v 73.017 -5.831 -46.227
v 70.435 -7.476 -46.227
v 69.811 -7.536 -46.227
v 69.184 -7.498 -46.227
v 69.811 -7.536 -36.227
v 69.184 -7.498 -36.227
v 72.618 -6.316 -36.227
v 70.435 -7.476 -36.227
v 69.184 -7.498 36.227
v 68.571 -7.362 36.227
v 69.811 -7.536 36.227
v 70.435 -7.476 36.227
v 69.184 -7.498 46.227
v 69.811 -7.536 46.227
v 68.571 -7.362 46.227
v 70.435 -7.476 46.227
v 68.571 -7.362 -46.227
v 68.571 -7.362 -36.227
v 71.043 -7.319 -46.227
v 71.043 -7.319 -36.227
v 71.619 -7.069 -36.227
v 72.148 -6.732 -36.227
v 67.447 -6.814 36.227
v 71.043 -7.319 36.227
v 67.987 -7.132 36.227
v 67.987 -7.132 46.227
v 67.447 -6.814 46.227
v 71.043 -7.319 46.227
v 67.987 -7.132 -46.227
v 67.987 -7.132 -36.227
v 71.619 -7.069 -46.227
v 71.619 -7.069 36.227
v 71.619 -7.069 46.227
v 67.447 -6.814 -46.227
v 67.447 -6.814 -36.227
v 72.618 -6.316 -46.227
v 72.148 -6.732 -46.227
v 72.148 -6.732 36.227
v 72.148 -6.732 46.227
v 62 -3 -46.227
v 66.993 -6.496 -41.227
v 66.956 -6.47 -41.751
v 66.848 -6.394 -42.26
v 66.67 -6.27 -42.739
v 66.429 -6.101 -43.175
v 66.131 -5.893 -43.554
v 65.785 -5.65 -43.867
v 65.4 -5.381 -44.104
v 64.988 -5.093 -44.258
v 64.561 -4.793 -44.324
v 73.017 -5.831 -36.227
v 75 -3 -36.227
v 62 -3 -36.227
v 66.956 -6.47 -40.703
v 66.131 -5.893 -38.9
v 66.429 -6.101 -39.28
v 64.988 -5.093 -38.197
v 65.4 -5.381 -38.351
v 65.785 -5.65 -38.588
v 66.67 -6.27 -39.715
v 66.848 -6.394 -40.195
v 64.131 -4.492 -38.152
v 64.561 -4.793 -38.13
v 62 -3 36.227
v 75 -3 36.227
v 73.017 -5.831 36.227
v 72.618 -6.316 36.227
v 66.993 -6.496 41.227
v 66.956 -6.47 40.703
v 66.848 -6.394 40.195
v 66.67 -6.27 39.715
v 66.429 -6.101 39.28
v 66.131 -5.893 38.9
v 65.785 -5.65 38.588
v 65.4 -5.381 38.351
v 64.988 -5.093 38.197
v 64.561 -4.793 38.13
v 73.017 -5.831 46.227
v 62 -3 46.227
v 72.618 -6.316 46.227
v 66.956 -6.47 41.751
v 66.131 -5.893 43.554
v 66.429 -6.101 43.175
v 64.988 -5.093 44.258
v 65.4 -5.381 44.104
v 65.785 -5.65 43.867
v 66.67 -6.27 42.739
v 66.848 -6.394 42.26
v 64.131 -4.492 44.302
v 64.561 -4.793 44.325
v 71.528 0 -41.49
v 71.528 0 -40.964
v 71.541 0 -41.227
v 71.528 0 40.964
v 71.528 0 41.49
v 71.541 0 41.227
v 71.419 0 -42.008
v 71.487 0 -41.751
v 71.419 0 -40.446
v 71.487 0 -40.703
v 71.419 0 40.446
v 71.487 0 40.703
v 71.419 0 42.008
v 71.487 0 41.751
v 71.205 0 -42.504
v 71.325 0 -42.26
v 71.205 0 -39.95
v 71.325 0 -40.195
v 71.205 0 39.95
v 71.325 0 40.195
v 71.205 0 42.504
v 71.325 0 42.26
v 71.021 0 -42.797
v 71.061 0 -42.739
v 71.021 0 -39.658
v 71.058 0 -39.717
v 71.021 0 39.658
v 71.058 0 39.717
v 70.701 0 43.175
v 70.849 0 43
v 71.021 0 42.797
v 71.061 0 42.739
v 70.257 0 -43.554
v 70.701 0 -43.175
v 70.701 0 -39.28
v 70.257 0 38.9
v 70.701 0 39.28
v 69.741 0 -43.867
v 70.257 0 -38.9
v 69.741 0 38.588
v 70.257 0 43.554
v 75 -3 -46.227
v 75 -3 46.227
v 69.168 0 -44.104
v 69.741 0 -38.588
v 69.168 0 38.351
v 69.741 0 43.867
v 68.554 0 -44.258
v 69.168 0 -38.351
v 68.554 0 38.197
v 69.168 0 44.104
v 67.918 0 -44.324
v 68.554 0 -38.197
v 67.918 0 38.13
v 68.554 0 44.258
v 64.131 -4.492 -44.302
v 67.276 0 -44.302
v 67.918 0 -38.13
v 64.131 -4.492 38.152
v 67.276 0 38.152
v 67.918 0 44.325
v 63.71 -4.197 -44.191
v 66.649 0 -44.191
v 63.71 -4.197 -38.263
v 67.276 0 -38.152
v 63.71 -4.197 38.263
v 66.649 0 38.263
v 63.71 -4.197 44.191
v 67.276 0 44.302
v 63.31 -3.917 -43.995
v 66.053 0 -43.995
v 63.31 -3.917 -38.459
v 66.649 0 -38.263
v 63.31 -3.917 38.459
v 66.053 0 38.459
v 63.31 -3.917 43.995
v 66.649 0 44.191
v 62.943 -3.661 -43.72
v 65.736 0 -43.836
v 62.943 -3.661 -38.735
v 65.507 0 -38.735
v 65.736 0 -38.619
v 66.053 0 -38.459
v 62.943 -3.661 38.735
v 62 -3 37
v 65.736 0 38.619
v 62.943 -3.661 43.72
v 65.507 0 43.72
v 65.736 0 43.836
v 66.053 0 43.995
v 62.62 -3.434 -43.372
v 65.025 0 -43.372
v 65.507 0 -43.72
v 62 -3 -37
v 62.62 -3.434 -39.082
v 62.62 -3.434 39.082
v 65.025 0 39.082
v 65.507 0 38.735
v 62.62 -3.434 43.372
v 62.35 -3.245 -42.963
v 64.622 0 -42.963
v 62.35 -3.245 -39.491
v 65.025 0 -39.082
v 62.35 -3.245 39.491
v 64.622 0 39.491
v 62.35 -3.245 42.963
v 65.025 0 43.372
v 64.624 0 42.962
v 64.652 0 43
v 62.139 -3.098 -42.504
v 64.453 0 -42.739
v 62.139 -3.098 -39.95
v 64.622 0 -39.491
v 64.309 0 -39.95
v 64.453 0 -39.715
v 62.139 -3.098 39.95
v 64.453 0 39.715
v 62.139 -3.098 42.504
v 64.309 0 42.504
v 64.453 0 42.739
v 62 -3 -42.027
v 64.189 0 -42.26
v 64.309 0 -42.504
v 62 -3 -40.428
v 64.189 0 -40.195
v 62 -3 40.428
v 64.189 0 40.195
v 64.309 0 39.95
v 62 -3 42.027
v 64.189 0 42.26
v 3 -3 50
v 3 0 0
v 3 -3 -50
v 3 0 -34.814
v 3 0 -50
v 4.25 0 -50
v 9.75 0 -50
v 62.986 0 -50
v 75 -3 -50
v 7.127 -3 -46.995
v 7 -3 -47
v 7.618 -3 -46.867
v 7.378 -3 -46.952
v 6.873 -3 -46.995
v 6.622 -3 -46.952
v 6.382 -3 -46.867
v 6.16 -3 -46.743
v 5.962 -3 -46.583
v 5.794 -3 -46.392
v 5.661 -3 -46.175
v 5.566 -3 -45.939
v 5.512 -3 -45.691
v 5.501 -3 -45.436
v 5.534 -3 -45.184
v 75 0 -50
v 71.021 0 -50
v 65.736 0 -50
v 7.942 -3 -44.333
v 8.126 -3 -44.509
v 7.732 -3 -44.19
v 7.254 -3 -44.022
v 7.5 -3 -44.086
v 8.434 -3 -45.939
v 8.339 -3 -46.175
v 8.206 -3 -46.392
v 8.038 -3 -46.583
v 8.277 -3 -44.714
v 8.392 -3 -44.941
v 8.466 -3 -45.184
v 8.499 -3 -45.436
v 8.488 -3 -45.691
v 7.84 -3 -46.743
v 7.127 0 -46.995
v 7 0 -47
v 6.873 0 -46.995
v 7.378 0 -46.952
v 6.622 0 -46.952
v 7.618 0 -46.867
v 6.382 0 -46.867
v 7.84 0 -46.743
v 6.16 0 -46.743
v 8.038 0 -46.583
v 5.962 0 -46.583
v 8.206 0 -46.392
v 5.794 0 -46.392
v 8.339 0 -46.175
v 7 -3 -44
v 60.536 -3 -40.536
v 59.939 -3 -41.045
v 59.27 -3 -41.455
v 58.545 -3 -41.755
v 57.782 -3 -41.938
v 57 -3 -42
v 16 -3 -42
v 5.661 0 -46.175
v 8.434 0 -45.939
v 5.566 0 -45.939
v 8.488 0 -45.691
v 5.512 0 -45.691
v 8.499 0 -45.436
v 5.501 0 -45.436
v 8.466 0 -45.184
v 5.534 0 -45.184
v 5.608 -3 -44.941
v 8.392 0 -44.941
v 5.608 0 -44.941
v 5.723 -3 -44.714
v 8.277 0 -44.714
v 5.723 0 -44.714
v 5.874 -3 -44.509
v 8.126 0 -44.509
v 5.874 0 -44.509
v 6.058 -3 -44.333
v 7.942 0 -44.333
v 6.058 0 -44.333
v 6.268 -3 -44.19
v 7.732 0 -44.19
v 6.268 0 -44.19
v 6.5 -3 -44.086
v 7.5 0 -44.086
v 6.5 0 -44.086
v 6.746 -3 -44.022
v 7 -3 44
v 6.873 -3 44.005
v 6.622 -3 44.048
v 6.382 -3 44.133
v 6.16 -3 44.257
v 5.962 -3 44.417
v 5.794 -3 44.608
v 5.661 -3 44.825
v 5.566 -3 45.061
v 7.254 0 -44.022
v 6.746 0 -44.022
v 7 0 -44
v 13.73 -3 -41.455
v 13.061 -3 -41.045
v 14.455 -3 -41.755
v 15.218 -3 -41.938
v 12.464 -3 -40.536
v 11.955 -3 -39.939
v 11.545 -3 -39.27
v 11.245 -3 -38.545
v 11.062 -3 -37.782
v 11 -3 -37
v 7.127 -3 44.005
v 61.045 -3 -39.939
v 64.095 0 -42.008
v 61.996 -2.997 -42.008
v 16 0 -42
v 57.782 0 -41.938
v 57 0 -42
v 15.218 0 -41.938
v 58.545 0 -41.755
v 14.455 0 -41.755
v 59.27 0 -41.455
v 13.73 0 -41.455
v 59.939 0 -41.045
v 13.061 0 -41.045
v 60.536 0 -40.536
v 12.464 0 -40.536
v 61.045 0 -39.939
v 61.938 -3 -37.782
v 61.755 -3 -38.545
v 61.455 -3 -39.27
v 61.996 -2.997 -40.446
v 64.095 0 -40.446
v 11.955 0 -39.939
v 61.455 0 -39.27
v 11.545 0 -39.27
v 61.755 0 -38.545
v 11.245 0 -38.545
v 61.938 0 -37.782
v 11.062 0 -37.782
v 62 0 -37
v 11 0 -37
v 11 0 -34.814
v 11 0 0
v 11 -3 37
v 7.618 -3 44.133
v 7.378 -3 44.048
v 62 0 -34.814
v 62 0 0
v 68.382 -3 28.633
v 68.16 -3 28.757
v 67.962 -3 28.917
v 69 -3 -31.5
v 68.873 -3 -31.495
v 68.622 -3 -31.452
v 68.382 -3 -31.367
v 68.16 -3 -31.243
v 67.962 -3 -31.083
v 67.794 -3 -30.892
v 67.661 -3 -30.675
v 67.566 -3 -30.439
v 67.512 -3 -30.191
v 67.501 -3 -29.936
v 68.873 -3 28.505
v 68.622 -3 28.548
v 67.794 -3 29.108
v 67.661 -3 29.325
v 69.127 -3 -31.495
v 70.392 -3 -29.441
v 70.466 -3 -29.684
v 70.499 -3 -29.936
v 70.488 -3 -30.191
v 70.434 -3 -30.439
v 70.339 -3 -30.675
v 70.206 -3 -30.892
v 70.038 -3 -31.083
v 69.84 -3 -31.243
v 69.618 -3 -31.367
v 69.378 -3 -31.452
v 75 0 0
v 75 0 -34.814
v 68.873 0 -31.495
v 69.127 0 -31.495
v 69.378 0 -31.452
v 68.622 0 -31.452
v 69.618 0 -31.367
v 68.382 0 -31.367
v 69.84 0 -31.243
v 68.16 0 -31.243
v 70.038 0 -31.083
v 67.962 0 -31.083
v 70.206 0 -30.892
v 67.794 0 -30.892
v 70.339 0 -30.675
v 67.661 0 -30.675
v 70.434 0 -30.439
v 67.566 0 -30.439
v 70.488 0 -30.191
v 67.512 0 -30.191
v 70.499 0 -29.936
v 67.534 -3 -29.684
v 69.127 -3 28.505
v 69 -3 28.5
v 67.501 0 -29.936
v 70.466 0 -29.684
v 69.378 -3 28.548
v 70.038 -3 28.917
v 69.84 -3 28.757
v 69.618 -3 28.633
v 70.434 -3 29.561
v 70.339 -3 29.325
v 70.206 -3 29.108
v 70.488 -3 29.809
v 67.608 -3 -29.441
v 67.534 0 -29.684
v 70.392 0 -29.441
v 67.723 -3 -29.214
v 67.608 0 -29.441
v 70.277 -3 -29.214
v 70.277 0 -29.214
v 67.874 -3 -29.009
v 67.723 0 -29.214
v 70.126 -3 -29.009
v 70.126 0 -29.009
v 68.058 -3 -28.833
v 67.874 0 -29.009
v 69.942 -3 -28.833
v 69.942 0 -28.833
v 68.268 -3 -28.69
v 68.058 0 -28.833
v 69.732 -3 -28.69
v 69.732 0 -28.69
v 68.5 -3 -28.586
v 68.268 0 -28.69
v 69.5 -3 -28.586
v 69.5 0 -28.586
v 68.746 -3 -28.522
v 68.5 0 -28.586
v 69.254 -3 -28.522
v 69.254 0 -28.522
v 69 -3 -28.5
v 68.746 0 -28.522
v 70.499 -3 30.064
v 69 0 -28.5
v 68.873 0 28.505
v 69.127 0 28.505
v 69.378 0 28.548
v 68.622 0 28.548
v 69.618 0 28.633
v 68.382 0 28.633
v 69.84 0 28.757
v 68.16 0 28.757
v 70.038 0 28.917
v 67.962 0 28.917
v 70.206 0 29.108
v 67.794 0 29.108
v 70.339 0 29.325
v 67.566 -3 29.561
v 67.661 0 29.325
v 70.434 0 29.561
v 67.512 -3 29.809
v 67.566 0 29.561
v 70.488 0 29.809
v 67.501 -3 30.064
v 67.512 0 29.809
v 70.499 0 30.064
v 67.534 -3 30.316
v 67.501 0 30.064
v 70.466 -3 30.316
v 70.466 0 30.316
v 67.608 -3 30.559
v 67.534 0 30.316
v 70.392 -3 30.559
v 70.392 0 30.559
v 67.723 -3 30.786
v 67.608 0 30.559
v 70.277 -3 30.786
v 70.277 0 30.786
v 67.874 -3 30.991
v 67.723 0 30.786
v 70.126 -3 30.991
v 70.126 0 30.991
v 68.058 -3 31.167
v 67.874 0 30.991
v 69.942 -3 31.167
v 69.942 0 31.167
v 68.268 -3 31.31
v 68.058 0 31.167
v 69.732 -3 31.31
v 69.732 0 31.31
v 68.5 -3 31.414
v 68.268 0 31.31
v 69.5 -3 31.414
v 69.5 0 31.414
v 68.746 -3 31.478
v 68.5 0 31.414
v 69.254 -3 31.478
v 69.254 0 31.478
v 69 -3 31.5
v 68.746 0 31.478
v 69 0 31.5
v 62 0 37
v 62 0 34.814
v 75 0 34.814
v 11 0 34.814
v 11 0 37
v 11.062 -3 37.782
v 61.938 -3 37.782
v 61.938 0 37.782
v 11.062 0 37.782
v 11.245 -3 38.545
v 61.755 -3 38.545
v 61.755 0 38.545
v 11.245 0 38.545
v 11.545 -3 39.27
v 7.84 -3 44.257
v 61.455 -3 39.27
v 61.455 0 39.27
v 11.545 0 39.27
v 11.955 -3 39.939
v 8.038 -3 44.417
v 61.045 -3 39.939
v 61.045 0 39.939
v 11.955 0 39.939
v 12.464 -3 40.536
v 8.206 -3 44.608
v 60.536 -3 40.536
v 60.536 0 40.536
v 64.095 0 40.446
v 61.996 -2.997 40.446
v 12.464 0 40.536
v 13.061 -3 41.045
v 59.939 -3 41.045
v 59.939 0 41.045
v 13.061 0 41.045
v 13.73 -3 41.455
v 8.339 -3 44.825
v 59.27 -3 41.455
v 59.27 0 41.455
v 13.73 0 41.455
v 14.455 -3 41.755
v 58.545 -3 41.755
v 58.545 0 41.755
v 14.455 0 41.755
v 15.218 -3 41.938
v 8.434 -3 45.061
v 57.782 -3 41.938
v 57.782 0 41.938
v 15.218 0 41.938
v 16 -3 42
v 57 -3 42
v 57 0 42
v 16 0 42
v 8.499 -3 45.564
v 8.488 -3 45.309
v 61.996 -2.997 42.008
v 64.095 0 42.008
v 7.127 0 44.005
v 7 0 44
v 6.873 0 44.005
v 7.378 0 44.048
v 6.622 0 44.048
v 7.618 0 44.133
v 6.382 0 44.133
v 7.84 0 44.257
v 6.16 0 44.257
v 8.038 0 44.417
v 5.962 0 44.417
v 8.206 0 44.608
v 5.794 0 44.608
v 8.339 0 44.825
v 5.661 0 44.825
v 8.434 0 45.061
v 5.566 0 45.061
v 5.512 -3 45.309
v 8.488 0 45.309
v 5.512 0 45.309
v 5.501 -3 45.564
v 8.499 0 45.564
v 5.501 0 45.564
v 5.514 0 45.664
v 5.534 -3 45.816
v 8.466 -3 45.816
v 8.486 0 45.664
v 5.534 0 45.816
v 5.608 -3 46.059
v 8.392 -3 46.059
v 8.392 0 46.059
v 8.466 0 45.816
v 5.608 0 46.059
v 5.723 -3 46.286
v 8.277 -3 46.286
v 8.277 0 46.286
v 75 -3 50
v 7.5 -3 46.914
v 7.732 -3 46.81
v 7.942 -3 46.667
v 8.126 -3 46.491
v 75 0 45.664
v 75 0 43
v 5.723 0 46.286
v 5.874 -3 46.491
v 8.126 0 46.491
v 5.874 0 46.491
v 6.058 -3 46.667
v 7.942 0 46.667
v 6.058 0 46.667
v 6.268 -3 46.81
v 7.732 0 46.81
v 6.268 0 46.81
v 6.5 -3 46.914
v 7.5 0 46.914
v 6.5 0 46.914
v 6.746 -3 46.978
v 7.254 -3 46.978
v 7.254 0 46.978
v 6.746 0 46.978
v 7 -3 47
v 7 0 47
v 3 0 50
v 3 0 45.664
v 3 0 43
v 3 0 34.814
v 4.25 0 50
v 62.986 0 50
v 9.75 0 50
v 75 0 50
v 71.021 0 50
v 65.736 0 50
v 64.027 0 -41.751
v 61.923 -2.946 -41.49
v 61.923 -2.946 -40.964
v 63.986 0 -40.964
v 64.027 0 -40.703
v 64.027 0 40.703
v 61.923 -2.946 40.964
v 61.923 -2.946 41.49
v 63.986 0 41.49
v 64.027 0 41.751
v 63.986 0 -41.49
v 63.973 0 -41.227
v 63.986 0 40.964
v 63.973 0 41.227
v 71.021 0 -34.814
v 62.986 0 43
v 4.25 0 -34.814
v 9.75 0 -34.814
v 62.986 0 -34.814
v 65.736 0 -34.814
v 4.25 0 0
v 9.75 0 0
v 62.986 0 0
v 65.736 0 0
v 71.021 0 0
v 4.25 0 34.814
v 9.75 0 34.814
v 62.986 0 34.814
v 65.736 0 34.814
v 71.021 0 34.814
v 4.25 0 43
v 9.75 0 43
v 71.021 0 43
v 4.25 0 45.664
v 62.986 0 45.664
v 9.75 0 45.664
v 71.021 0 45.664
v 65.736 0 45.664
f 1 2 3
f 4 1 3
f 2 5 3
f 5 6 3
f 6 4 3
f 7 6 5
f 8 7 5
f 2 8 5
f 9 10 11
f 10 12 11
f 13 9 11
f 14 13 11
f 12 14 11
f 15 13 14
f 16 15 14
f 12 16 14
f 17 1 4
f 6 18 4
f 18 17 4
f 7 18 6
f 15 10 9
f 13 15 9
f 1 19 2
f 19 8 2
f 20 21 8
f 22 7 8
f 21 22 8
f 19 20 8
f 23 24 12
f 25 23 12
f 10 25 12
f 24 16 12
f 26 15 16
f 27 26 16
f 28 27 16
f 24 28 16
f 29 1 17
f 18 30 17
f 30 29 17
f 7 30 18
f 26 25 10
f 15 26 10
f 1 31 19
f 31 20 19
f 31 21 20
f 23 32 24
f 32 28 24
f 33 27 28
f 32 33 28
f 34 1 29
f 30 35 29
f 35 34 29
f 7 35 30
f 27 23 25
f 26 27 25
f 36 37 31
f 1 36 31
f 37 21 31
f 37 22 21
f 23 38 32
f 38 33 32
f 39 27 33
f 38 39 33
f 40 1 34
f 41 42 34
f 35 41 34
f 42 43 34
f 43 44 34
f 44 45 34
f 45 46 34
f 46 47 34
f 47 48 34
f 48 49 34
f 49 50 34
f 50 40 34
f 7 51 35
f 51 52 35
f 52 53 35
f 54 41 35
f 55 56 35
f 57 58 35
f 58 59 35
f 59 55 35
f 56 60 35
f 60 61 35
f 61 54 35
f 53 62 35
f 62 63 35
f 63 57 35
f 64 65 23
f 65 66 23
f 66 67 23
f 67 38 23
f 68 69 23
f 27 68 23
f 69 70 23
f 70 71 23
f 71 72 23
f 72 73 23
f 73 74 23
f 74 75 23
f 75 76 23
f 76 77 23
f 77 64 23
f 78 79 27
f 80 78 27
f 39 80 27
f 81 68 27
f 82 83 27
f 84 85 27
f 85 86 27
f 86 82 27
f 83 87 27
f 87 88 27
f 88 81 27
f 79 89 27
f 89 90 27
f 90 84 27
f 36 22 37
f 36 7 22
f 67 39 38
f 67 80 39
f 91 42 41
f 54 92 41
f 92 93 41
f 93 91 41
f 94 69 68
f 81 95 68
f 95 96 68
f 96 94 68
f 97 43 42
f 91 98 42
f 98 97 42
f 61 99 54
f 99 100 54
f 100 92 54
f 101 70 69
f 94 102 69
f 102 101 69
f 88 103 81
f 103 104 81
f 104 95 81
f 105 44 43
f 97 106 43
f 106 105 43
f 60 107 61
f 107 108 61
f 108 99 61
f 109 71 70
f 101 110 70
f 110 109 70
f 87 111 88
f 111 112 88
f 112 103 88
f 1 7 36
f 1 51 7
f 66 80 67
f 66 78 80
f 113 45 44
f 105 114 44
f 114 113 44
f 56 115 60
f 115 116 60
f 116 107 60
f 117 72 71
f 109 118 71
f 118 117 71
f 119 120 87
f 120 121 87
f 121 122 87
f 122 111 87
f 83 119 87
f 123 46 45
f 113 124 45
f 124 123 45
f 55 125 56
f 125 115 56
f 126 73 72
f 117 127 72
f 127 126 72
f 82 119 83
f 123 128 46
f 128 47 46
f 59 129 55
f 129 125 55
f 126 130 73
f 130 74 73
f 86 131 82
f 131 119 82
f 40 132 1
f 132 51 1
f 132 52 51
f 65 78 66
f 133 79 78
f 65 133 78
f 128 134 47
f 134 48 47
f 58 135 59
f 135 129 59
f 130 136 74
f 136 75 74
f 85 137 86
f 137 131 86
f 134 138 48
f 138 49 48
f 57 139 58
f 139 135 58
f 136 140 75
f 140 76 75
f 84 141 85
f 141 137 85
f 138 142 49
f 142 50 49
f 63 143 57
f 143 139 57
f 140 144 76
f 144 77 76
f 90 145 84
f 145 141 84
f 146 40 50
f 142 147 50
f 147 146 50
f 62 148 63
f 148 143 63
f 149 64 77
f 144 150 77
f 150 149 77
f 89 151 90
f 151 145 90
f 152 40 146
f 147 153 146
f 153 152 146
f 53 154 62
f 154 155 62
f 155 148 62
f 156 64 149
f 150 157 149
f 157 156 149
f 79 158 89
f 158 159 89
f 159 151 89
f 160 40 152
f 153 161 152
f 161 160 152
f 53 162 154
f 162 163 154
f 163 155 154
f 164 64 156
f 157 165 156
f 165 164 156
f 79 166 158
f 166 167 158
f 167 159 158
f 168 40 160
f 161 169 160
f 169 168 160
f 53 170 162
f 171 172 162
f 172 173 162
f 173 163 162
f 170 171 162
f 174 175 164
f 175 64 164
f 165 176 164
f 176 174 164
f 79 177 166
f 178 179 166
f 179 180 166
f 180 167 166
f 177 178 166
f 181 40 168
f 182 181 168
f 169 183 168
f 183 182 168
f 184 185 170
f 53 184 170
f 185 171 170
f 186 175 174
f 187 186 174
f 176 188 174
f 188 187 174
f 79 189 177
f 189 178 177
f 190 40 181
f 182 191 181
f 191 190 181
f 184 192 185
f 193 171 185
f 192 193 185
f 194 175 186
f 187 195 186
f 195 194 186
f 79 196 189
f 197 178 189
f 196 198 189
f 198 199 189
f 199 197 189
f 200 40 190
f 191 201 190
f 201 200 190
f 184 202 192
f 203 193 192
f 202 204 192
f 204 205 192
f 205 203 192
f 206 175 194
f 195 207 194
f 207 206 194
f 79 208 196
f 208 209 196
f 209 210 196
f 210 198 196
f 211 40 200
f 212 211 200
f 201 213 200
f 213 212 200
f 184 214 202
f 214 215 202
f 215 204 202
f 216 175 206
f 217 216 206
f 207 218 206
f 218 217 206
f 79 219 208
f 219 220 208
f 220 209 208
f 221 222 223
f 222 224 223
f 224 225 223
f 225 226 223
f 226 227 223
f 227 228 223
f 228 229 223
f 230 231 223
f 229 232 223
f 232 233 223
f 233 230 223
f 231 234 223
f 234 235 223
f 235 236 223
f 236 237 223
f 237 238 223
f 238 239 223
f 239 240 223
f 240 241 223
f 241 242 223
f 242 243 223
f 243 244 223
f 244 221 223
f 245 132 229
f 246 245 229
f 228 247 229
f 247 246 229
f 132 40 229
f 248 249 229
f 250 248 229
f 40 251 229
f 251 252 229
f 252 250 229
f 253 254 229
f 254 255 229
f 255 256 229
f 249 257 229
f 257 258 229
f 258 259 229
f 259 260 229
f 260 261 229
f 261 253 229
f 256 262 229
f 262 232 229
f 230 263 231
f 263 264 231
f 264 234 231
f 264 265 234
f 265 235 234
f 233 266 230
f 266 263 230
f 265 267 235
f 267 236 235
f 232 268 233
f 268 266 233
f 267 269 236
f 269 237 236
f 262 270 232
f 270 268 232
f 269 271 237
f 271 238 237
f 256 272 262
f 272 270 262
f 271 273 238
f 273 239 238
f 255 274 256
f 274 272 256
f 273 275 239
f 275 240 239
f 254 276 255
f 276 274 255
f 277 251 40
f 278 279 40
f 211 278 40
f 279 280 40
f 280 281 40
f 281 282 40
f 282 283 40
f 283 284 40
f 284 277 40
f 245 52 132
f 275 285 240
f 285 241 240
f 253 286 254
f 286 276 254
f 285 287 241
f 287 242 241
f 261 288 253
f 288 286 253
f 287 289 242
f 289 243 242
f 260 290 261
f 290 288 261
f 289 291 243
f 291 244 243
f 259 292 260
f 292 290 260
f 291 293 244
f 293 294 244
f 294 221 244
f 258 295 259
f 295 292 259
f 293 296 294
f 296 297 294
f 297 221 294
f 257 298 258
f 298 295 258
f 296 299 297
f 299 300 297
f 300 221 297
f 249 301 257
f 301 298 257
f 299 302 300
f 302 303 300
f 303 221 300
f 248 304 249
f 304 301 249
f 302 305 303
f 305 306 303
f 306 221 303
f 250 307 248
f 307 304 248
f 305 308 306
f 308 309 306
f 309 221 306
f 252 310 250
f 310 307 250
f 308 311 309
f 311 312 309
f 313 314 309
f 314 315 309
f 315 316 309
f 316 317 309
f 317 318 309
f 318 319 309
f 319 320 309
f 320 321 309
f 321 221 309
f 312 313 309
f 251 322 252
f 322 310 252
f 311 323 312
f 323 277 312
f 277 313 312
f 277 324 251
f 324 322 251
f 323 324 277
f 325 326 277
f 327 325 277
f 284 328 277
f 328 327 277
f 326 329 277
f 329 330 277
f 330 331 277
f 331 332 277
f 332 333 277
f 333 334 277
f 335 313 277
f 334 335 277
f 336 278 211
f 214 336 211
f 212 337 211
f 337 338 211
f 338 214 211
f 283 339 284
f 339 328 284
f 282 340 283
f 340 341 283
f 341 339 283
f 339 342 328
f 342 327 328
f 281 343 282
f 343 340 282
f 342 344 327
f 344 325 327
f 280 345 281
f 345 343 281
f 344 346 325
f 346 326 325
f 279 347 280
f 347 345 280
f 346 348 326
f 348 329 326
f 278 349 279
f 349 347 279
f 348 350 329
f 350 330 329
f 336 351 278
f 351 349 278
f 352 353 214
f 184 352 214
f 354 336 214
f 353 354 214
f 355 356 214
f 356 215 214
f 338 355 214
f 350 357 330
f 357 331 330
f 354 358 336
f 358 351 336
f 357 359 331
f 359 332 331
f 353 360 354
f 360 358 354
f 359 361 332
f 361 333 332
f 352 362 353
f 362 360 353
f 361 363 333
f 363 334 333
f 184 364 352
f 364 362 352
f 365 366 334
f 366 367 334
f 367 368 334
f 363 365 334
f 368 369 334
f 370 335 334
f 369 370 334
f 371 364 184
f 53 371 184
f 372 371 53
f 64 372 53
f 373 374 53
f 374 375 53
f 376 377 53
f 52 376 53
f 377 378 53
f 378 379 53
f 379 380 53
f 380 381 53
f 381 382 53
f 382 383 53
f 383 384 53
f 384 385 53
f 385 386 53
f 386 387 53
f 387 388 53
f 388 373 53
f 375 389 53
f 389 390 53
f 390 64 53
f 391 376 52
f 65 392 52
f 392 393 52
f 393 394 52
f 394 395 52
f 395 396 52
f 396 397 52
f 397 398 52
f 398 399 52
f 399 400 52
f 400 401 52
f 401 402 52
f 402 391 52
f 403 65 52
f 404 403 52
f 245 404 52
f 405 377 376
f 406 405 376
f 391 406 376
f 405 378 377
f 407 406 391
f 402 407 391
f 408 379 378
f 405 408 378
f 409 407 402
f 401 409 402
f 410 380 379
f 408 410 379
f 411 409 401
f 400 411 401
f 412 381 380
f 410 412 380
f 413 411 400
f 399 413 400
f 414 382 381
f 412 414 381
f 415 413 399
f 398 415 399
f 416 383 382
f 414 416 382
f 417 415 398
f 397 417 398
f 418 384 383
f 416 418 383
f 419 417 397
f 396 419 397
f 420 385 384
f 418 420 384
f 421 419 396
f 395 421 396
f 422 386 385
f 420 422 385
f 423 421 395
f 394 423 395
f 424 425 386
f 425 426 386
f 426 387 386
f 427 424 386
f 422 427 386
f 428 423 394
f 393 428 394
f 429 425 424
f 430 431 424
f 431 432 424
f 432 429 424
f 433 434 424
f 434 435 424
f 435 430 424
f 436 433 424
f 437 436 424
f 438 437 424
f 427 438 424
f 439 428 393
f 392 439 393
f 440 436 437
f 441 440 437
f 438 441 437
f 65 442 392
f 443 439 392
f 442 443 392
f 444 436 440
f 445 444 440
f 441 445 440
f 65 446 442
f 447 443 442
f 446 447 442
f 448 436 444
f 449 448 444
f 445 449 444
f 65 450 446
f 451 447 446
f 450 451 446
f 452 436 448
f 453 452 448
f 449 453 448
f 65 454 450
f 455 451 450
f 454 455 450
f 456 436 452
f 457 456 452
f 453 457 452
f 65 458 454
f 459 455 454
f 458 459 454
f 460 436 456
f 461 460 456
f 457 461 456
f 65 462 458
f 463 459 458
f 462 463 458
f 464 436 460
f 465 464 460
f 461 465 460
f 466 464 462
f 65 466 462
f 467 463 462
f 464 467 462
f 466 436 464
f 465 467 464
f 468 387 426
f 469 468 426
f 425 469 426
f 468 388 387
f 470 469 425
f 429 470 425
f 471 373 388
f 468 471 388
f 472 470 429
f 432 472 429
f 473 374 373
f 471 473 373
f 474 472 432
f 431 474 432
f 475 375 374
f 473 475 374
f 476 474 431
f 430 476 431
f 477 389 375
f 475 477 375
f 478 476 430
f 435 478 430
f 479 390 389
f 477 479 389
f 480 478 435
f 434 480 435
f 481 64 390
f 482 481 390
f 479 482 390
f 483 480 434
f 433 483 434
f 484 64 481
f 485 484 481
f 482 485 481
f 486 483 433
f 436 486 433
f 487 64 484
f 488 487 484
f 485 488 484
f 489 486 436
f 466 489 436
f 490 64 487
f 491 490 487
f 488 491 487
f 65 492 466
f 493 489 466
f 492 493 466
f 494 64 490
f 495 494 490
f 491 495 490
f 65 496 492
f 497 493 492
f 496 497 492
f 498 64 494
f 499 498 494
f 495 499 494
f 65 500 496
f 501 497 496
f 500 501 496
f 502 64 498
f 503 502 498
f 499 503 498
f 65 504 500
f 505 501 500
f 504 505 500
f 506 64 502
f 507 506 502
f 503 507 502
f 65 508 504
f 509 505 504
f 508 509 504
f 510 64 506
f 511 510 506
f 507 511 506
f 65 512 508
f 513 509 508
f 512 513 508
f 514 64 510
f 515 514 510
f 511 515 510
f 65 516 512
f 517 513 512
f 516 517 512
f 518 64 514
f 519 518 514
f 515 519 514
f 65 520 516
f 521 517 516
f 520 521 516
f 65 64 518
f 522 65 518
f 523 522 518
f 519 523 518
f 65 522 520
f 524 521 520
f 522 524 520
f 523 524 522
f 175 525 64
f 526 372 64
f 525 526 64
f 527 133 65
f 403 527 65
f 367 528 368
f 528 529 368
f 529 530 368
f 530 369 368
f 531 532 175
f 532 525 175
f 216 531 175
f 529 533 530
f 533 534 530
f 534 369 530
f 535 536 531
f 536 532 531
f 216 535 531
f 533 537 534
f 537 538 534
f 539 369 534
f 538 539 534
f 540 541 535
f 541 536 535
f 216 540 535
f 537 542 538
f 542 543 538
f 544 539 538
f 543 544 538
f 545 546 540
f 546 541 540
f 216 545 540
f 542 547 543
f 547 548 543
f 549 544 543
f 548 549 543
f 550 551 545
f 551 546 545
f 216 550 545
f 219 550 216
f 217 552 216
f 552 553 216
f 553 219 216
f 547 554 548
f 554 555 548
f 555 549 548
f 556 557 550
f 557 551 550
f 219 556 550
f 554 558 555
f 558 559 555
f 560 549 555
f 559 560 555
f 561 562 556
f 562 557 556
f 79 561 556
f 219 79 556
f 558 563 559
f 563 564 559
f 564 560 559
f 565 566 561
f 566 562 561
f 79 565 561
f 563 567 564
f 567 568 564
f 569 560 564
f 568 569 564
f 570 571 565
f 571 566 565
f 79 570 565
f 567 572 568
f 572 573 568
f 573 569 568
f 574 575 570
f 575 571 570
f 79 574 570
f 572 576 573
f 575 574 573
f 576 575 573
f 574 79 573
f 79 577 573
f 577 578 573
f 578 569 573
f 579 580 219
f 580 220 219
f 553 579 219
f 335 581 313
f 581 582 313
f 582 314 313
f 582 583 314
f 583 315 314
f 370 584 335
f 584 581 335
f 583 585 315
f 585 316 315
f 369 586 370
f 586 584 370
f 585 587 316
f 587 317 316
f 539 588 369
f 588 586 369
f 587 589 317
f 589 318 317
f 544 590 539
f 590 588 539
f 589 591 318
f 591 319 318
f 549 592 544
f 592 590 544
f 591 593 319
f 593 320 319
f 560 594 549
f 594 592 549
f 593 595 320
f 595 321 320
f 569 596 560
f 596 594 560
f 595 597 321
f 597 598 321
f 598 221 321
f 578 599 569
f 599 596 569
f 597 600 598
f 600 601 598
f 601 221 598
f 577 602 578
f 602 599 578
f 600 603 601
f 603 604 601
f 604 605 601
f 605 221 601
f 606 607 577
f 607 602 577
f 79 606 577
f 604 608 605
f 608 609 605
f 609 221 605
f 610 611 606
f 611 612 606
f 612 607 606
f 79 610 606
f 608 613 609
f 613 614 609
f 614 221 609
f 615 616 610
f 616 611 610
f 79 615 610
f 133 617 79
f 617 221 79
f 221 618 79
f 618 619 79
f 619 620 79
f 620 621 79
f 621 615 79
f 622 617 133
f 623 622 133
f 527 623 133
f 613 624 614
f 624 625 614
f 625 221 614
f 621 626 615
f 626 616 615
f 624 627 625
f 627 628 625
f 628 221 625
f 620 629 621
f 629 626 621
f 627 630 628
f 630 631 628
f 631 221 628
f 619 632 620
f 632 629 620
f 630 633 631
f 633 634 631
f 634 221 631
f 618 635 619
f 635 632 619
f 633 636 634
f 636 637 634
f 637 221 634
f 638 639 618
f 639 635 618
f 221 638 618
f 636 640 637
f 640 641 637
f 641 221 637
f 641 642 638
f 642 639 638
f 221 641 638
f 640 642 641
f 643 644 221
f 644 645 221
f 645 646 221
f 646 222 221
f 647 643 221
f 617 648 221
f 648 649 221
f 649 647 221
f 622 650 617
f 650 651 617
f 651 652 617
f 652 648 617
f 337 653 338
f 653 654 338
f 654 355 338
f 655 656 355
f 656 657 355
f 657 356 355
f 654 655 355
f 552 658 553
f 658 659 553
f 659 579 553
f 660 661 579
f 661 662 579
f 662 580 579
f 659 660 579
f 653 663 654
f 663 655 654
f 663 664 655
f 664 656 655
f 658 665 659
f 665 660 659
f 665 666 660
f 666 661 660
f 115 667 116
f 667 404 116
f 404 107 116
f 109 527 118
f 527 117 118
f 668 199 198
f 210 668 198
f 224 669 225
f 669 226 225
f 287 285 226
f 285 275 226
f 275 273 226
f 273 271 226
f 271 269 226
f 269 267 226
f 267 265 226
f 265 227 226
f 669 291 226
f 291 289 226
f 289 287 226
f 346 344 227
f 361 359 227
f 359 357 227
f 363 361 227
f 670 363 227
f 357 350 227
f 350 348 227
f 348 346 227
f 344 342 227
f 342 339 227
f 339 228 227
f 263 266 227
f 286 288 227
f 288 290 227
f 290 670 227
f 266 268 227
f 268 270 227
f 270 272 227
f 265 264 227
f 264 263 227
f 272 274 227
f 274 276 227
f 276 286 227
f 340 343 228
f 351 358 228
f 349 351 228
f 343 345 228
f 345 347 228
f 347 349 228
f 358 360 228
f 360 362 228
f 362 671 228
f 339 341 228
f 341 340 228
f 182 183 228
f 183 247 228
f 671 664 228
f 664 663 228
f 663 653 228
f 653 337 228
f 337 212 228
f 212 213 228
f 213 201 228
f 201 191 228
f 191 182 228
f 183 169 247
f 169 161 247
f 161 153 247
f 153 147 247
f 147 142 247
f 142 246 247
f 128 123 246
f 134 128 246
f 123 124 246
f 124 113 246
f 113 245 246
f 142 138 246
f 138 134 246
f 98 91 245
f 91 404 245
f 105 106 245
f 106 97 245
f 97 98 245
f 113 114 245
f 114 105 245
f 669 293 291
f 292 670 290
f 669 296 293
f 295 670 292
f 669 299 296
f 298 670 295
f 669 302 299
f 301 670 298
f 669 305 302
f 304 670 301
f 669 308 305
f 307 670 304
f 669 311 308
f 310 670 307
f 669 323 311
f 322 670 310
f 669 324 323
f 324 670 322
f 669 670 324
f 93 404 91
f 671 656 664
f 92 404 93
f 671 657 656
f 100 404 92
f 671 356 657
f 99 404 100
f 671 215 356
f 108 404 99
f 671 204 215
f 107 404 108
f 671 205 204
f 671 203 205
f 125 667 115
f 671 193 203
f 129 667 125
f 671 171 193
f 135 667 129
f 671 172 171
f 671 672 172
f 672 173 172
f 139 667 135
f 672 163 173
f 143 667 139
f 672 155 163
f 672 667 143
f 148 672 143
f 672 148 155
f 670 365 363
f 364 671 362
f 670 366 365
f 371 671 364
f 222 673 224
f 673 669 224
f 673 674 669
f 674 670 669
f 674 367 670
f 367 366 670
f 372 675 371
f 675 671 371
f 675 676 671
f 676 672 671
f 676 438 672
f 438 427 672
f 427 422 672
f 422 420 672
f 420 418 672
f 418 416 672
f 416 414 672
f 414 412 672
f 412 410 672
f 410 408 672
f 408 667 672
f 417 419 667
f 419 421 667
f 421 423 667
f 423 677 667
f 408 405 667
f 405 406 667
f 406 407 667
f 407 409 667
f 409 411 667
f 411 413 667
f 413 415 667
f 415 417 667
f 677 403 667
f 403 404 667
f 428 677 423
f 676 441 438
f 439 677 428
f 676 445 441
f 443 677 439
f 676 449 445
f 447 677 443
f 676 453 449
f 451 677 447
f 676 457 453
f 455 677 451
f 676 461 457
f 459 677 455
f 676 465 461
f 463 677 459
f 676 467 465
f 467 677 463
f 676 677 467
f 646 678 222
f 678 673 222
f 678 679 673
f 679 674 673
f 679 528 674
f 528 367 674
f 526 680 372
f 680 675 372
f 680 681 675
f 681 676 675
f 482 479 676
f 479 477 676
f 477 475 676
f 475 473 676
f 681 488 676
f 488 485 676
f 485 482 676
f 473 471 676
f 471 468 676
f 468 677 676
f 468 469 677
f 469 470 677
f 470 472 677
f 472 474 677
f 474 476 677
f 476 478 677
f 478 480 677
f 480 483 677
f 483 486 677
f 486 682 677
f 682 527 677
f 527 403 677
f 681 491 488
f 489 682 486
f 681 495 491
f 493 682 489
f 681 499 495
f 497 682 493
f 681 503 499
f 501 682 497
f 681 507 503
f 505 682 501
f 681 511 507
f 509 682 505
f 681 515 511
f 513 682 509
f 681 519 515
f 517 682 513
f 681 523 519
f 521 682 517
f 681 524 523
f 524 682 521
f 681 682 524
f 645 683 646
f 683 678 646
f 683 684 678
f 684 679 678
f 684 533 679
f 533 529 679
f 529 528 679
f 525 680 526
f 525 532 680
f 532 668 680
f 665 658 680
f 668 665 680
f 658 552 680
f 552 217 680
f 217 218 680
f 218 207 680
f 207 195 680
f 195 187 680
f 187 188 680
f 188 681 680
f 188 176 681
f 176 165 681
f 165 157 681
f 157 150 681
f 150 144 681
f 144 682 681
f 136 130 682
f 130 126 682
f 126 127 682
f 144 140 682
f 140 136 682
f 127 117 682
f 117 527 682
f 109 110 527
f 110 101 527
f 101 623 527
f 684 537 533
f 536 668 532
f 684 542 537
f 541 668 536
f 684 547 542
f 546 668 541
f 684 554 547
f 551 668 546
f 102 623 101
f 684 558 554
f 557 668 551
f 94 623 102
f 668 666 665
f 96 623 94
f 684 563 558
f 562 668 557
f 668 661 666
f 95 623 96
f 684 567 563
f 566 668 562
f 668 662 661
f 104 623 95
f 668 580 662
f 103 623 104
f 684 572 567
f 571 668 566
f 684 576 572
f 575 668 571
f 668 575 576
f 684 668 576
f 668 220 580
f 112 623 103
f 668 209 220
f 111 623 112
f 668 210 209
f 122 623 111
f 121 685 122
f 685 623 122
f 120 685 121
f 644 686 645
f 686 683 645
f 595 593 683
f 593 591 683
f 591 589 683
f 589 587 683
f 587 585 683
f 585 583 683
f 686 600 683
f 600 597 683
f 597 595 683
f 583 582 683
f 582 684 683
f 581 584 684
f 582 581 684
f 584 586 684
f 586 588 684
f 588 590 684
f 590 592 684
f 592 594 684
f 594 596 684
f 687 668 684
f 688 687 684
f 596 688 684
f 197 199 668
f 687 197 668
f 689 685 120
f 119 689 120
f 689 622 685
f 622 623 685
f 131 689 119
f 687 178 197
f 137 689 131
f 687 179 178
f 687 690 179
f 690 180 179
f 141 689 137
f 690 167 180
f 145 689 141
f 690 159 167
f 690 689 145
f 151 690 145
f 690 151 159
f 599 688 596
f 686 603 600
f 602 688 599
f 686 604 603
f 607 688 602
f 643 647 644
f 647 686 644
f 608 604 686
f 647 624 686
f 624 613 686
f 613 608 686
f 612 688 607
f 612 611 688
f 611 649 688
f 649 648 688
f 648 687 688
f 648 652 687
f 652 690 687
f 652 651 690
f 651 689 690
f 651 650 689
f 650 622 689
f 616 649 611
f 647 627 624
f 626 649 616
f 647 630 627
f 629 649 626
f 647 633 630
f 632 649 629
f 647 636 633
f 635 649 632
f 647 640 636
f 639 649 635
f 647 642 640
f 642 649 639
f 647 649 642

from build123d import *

# Parameters (mm, degrees)
SKETCH1_W           = 72
SKETCH1_H           = 100
SKETCH1_R           = 1.5
BOSS_EXTRUDE1_DEPTH = 3
SKETCH3_W           = 13
SKETCH3_H           = 10
BOSS_EXTRUDE3_DEPTH = 11
CUT_EXTRUDE1_DEPTH  = 15
SKETCH6_R           = 3.1
CUT_EXTRUDE2_DEPTH  = 10.913949805
FILLET1_R           = 4
SKETCH7_R           = 1.5
CUT_EXTRUDE3_DEPTH  = 8.537088113


with BuildPart() as part:
    # Sketch1 → Boss-Extrude1 (new body)
    with BuildSketch(Plane.XZ):
        with Locations((39, 0)):
            Rectangle(SKETCH1_W, SKETCH1_H)
        with Locations((7, -45.5)):
            Circle(SKETCH1_R, mode=Mode.SUBTRACT)
        with BuildLine():
            Line((62, 37), (62, -37))
            ThreePointArc((62, -37), (60.535533906, -40.535533906), (57, -42))
            Line((57, -42), (16, -42))
            ThreePointArc((16, -42), (12.464466094, -40.535533906), (11, -37))
            Line((11, -37), (11, 37))
            ThreePointArc((11, 37), (12.464466094, 40.535533906), (16, 42))
            Line((16, 42), (57, 42))
            ThreePointArc((57, 42), (60.535533906, 40.535533906), (62, 37))
        make_face(mode=Mode.SUBTRACT)
        with Locations((7, 45.5)):
            Circle(SKETCH1_R, mode=Mode.SUBTRACT)
    extrude(amount=BOSS_EXTRUDE1_DEPTH)

    # Sketch3 → Boss-Extrude3 (add)
    with BuildSketch(Plane.XZ.offset(3)):
        with Locations((68.5, -41.227292579)):
            Rectangle(SKETCH3_W, SKETCH3_H)
    boss_extrude3 = extrude(amount=BOSS_EXTRUDE3_DEPTH)

    # Sketch4 → Cut-Extrude1 (cut)
    with BuildSketch(Plane(origin=(0, 0, -46.227292579), x_dir=(-1, 0, 0), z_dir=(0, 0, -1))):
        Polygon((-62, -14), (-62, -3), (-70.723130932, -9.108002035), (-67.29771708, -14), align=None)
        Polygon((-67.29771708, -14), (-70.723130932, -9.108002035), (-75, -3), (-75, -14), align=None)
    cut_extrude1 = extrude(amount=-CUT_EXTRUDE1_DEPTH, mode=Mode.SUBTRACT)

    # Sketch6 → Cut-Extrude2 (cut, through all)
    with BuildSketch(Plane(origin=(18.987836626, 27.117441029, 0), x_dir=(0.819152044, -0.573576436, 0), z_dir=(-0.573576436, -0.819152044, 0))):
        with Locations((55.50325926, -41.227292579)):
            Circle(SKETCH6_R)
    cut_extrude2 = extrude(amount=-CUT_EXTRUDE2_DEPTH, mode=Mode.SUBTRACT)

    # Mirror1: Boss-Extrude3, Cut-Extrude1, Cut-Extrude2 across plane
    add(boss_extrude3.mirror(Plane.XY))
    add(cut_extrude1.mirror(Plane.XY), mode=Mode.SUBTRACT)
    add(cut_extrude2.mirror(Plane.XY), mode=Mode.SUBTRACT)

    # Fillet1
    fillet1_edges = [part.edges().sort_by_distance(p)[0] for p in [
        (70.723130932, -9.108002035, 41.227292579),
        (70.723130932, -9.108002035, -41.227292579),
    ]]
    fillet(fillet1_edges, radius=FILLET1_R)

    # Sketch7 → Cut-Extrude3 (cut, through all)
    with BuildSketch(Plane(origin=(0, 0, 0), x_dir=(1, 0, 0), z_dir=(0, 1, 0))):
        with Locations((69, 30)):
            Circle(SKETCH7_R)
        with Locations((69, -30)):
            Circle(SKETCH7_R)
    extrude(amount=-CUT_EXTRUDE3_DEPTH, mode=Mode.SUBTRACT)


solid = part.part
